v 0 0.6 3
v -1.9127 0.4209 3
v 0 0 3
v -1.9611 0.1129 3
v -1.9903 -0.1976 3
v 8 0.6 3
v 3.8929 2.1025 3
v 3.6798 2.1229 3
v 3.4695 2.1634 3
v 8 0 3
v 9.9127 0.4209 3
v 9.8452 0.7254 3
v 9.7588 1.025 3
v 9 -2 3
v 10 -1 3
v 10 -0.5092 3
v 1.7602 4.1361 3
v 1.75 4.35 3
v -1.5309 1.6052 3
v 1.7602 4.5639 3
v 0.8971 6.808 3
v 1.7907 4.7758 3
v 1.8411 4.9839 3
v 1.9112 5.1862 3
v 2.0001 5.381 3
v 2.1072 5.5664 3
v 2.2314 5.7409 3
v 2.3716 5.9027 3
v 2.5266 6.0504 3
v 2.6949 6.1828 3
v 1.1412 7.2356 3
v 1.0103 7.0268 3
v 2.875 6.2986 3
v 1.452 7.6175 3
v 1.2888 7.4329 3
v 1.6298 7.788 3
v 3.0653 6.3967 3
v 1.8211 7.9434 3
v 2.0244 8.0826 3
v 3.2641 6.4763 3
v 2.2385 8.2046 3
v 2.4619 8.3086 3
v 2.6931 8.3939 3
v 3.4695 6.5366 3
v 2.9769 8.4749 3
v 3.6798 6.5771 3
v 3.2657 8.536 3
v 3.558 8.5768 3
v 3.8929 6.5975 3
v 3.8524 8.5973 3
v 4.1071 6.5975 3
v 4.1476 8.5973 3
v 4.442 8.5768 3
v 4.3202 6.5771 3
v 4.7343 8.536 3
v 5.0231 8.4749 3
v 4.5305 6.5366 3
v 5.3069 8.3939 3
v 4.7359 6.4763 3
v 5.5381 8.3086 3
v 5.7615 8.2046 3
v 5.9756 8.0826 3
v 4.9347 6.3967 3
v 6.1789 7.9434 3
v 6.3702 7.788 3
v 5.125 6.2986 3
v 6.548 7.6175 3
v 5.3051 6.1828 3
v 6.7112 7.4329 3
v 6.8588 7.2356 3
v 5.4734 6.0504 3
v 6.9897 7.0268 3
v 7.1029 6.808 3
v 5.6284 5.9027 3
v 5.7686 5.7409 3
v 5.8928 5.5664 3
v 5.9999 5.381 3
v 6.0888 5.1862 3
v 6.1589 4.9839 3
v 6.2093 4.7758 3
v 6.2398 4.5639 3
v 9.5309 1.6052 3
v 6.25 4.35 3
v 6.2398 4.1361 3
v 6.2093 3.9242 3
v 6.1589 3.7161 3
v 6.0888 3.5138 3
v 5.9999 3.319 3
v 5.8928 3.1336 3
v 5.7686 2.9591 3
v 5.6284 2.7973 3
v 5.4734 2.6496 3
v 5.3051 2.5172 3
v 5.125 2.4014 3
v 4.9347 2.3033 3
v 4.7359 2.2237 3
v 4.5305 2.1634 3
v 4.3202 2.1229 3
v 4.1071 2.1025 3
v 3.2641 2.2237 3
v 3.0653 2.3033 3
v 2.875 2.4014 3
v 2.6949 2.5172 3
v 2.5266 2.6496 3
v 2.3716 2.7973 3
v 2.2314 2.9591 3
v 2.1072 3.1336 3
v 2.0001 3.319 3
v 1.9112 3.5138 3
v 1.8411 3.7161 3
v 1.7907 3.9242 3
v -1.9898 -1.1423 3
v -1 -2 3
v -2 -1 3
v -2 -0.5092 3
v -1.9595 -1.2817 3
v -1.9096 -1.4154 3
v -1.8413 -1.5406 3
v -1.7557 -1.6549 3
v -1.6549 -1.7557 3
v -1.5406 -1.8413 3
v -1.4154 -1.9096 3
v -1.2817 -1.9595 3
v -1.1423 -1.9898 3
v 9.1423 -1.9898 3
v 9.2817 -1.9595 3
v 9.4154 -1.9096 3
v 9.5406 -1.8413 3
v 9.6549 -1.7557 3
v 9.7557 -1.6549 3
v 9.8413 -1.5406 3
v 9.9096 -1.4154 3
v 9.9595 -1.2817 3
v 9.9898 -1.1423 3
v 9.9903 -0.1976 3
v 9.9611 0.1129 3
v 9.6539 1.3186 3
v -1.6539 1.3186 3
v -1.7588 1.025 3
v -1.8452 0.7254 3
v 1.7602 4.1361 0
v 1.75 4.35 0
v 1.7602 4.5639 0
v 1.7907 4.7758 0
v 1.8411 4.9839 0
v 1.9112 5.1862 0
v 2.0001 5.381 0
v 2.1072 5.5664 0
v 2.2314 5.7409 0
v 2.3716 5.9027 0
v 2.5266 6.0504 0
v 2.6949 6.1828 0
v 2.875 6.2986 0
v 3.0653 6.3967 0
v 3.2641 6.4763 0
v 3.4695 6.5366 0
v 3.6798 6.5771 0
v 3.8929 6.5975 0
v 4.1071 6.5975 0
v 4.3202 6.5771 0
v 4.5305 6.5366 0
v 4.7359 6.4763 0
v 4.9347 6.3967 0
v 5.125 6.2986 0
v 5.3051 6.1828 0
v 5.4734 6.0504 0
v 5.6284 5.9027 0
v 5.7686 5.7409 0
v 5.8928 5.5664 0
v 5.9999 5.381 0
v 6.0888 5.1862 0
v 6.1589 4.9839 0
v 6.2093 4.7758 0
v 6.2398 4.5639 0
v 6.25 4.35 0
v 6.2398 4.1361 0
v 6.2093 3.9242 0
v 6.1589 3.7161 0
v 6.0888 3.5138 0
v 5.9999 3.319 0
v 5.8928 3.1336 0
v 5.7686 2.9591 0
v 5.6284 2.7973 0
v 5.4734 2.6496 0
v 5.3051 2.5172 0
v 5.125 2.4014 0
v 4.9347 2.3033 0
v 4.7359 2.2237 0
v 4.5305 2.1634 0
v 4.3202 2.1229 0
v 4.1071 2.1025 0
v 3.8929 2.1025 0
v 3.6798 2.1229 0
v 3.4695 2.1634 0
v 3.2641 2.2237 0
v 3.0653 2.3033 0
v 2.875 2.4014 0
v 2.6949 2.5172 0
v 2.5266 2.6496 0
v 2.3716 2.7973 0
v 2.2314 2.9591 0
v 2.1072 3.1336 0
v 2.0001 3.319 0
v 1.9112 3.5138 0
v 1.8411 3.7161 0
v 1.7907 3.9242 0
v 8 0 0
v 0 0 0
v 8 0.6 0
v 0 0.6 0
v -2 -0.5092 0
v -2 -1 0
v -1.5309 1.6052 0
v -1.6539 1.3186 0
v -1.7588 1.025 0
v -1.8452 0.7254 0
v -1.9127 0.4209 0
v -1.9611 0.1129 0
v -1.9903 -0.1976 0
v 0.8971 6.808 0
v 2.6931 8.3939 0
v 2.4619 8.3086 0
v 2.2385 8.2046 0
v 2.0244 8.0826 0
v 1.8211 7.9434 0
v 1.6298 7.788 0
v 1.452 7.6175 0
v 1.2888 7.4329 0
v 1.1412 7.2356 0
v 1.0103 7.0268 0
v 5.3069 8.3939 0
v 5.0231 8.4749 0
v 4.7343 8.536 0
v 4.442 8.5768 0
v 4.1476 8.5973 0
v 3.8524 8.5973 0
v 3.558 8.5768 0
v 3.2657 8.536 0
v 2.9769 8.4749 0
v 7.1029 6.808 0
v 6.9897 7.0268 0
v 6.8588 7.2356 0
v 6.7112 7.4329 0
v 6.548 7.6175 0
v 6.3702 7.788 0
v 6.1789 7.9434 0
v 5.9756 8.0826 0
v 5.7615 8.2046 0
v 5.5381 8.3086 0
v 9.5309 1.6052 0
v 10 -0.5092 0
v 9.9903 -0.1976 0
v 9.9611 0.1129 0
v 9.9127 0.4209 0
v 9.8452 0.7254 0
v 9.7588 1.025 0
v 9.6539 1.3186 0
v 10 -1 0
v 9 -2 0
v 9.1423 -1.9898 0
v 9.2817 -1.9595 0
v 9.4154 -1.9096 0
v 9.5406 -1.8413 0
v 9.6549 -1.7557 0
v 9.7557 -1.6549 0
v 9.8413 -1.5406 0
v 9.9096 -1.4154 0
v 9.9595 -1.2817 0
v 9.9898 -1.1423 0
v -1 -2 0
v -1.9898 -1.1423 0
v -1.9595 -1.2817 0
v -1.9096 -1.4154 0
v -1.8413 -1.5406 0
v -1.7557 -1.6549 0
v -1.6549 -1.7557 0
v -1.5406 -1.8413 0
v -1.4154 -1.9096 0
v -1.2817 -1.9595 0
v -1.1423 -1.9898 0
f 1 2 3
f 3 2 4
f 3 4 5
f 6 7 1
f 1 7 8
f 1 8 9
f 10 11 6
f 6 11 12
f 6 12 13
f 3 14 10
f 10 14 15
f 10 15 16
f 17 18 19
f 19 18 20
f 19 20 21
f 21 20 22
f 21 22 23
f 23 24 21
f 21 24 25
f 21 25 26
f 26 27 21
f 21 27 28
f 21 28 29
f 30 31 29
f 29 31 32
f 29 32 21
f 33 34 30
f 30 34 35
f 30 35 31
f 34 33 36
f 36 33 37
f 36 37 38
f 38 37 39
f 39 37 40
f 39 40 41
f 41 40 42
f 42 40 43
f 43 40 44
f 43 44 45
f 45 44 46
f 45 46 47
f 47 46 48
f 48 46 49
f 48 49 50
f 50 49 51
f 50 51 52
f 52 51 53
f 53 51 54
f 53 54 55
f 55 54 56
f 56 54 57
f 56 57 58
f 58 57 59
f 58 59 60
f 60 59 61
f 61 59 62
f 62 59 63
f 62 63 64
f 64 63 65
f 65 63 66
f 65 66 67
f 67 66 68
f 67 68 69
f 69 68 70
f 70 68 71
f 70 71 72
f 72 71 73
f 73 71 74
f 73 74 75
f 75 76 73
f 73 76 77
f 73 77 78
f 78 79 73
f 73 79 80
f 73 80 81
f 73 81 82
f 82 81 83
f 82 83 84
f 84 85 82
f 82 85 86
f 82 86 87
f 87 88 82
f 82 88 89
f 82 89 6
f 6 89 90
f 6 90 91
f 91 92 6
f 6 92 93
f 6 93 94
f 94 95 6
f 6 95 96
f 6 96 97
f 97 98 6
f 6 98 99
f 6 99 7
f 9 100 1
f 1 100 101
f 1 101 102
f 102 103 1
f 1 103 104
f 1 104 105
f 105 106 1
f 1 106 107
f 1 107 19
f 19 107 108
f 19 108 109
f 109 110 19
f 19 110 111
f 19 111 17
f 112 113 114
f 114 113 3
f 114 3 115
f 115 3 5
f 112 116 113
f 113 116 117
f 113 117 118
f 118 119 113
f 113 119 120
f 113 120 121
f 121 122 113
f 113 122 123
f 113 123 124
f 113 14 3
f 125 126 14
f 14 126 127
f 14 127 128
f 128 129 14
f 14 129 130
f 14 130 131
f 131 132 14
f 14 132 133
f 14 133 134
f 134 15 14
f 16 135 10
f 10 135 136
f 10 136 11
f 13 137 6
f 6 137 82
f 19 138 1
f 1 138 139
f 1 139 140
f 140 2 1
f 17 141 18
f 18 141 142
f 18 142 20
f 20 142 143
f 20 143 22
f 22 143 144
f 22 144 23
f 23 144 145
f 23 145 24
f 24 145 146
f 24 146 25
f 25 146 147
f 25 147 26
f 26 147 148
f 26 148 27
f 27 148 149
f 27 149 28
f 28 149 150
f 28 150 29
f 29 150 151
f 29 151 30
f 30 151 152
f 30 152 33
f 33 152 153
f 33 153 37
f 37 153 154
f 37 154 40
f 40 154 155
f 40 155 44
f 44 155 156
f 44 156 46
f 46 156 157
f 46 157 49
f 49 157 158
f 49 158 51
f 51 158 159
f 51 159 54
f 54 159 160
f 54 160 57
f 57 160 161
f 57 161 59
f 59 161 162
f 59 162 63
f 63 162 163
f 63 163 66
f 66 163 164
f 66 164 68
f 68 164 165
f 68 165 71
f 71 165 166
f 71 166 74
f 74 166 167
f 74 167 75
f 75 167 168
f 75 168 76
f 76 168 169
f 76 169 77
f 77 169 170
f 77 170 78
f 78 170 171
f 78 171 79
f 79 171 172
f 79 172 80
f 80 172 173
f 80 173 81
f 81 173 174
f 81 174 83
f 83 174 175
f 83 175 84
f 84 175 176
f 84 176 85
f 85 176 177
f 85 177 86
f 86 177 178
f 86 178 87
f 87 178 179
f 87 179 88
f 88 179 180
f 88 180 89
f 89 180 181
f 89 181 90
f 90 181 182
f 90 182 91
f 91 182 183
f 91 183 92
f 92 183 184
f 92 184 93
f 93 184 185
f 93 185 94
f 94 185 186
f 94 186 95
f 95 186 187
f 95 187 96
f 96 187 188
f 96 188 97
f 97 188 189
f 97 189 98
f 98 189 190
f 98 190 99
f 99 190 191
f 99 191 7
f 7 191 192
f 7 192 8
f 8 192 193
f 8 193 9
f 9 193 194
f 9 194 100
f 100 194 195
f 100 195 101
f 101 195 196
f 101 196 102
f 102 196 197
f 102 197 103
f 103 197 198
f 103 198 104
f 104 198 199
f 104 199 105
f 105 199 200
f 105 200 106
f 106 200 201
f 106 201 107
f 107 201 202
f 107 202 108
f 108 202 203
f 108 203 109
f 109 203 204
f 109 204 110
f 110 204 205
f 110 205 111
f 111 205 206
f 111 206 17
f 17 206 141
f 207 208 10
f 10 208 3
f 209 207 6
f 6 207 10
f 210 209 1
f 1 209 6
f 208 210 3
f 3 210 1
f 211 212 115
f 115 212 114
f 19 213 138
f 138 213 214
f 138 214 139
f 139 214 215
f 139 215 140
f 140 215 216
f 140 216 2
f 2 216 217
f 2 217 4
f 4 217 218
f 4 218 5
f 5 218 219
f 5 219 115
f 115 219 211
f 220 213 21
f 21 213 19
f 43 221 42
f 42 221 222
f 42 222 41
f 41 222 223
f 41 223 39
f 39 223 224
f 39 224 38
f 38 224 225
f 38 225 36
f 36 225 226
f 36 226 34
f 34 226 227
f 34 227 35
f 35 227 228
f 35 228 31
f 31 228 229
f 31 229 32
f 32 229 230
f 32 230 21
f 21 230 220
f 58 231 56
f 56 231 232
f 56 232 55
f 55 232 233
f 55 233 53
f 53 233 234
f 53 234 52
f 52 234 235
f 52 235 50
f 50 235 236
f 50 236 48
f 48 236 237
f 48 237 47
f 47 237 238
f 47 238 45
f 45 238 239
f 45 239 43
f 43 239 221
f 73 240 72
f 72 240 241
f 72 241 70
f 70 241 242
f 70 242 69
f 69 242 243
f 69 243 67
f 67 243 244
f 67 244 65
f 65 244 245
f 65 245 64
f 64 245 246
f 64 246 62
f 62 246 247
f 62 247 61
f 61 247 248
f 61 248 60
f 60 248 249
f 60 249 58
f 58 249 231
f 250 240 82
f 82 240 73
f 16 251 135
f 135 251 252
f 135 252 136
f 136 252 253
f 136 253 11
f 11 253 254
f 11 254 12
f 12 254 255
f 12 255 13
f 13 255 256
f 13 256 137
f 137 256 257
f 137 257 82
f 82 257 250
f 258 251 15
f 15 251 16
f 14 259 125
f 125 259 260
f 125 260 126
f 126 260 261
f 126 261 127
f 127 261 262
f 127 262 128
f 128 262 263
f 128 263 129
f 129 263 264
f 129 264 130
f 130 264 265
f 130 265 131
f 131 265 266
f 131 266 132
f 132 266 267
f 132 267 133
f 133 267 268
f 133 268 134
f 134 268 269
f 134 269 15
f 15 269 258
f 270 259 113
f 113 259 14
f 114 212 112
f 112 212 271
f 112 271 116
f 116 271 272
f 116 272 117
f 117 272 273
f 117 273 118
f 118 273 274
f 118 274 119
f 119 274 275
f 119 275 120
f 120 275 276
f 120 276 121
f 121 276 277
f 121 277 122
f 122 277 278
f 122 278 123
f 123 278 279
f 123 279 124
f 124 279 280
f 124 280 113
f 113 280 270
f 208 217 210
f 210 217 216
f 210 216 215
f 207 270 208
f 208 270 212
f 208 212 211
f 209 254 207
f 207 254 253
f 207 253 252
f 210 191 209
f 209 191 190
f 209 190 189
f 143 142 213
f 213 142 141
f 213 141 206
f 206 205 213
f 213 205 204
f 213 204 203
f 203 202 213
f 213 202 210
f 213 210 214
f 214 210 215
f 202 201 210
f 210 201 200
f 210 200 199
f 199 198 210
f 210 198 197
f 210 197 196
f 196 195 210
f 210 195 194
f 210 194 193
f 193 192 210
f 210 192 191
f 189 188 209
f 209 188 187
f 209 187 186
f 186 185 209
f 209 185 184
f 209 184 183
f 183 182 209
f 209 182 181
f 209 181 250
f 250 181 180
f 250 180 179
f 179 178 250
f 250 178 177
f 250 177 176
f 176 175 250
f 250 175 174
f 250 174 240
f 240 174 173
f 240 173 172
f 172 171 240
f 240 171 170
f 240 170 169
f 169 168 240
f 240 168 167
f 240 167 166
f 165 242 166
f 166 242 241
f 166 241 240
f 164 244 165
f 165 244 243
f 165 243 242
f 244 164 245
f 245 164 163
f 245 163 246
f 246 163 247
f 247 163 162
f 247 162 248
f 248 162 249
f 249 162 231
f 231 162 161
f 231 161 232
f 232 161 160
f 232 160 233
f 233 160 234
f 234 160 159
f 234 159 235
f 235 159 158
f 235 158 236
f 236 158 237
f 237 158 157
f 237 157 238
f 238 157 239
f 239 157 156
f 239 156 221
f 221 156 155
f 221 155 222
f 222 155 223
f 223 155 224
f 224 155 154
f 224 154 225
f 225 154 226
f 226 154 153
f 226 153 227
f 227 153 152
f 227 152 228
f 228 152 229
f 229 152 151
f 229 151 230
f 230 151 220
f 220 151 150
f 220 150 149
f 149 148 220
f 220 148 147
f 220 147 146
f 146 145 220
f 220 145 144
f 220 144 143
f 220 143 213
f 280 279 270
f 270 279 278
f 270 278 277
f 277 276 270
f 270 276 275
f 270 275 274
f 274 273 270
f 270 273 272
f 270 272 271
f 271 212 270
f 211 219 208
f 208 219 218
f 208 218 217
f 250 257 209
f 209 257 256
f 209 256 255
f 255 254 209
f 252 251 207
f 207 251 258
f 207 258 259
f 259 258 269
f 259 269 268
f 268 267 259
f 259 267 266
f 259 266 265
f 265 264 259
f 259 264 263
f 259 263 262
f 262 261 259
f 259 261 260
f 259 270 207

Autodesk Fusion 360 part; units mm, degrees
sketch "Skizze1" plane through (0, 0, 0) normal (0, 0, 1) x (1, 0, 0)
  line L0 (0, 0) -> (8, 0)
  line L1 (8, 0) -> (8, 0.6)
  line L2 (8, 0.6) -> (0, 0.6)
  line L3 (0, 0.6) -> (0, 0)
  circle A0 centre (4, 4.35) radius 2.25
  line L4 (-1, -2) -> (9, -2)
  line L5 (10, -1) -> (10, -0.5092)
  line L6 (-2, -1) -> (-2, -0.5092)
  line L7 (-1.5309, 1.6052) -> (0.8971, 6.808)
  line L8 (9.5309, 1.6052) -> (7.1029, 6.808)
  arc A1 (5.3069, 8.3939) -> (2.6931, 8.3939) centre (4, 4.3499) ccw
  arc A2 (-1.5309, 1.6052) -> (-2, -0.5092) centre (3, -0.5092) ccw
  arc A3 (10, -0.5092) -> (9.5309, 1.6052) centre (5, -0.5092) ccw
  arc A4 (-2, -1) -> (-1, -2) centre (-1, -1) ccw
  arc A5 (9, -2) -> (10, -1) centre (9, -1) ccw
  arc A6 (7.1029, 6.808) -> (5.3069, 8.3939) centre (4.3844, 5.5393) ccw
  arc A7 (2.6931, 8.3939) -> (0.8971, 6.808) centre (3.6156, 5.5393) ccw
  dimension "d1" = 8
  dimension "d2" = 0.6
  dimension "d3" = 4.5
  dimension "d14" = 5
  dimension "d15" = 5
  dimension "d16" = 1
  dimension "d17" = 1
  dimension "d18" = 3
  dimension "d19" = 3
extrude "Extrusion1" add sketch "Skizze1" along normal blind 2
extrude "Extrusion2" add 1 faces at (5.3333, -1.3333, 2) along direction (0, 0, 1) blind 1
